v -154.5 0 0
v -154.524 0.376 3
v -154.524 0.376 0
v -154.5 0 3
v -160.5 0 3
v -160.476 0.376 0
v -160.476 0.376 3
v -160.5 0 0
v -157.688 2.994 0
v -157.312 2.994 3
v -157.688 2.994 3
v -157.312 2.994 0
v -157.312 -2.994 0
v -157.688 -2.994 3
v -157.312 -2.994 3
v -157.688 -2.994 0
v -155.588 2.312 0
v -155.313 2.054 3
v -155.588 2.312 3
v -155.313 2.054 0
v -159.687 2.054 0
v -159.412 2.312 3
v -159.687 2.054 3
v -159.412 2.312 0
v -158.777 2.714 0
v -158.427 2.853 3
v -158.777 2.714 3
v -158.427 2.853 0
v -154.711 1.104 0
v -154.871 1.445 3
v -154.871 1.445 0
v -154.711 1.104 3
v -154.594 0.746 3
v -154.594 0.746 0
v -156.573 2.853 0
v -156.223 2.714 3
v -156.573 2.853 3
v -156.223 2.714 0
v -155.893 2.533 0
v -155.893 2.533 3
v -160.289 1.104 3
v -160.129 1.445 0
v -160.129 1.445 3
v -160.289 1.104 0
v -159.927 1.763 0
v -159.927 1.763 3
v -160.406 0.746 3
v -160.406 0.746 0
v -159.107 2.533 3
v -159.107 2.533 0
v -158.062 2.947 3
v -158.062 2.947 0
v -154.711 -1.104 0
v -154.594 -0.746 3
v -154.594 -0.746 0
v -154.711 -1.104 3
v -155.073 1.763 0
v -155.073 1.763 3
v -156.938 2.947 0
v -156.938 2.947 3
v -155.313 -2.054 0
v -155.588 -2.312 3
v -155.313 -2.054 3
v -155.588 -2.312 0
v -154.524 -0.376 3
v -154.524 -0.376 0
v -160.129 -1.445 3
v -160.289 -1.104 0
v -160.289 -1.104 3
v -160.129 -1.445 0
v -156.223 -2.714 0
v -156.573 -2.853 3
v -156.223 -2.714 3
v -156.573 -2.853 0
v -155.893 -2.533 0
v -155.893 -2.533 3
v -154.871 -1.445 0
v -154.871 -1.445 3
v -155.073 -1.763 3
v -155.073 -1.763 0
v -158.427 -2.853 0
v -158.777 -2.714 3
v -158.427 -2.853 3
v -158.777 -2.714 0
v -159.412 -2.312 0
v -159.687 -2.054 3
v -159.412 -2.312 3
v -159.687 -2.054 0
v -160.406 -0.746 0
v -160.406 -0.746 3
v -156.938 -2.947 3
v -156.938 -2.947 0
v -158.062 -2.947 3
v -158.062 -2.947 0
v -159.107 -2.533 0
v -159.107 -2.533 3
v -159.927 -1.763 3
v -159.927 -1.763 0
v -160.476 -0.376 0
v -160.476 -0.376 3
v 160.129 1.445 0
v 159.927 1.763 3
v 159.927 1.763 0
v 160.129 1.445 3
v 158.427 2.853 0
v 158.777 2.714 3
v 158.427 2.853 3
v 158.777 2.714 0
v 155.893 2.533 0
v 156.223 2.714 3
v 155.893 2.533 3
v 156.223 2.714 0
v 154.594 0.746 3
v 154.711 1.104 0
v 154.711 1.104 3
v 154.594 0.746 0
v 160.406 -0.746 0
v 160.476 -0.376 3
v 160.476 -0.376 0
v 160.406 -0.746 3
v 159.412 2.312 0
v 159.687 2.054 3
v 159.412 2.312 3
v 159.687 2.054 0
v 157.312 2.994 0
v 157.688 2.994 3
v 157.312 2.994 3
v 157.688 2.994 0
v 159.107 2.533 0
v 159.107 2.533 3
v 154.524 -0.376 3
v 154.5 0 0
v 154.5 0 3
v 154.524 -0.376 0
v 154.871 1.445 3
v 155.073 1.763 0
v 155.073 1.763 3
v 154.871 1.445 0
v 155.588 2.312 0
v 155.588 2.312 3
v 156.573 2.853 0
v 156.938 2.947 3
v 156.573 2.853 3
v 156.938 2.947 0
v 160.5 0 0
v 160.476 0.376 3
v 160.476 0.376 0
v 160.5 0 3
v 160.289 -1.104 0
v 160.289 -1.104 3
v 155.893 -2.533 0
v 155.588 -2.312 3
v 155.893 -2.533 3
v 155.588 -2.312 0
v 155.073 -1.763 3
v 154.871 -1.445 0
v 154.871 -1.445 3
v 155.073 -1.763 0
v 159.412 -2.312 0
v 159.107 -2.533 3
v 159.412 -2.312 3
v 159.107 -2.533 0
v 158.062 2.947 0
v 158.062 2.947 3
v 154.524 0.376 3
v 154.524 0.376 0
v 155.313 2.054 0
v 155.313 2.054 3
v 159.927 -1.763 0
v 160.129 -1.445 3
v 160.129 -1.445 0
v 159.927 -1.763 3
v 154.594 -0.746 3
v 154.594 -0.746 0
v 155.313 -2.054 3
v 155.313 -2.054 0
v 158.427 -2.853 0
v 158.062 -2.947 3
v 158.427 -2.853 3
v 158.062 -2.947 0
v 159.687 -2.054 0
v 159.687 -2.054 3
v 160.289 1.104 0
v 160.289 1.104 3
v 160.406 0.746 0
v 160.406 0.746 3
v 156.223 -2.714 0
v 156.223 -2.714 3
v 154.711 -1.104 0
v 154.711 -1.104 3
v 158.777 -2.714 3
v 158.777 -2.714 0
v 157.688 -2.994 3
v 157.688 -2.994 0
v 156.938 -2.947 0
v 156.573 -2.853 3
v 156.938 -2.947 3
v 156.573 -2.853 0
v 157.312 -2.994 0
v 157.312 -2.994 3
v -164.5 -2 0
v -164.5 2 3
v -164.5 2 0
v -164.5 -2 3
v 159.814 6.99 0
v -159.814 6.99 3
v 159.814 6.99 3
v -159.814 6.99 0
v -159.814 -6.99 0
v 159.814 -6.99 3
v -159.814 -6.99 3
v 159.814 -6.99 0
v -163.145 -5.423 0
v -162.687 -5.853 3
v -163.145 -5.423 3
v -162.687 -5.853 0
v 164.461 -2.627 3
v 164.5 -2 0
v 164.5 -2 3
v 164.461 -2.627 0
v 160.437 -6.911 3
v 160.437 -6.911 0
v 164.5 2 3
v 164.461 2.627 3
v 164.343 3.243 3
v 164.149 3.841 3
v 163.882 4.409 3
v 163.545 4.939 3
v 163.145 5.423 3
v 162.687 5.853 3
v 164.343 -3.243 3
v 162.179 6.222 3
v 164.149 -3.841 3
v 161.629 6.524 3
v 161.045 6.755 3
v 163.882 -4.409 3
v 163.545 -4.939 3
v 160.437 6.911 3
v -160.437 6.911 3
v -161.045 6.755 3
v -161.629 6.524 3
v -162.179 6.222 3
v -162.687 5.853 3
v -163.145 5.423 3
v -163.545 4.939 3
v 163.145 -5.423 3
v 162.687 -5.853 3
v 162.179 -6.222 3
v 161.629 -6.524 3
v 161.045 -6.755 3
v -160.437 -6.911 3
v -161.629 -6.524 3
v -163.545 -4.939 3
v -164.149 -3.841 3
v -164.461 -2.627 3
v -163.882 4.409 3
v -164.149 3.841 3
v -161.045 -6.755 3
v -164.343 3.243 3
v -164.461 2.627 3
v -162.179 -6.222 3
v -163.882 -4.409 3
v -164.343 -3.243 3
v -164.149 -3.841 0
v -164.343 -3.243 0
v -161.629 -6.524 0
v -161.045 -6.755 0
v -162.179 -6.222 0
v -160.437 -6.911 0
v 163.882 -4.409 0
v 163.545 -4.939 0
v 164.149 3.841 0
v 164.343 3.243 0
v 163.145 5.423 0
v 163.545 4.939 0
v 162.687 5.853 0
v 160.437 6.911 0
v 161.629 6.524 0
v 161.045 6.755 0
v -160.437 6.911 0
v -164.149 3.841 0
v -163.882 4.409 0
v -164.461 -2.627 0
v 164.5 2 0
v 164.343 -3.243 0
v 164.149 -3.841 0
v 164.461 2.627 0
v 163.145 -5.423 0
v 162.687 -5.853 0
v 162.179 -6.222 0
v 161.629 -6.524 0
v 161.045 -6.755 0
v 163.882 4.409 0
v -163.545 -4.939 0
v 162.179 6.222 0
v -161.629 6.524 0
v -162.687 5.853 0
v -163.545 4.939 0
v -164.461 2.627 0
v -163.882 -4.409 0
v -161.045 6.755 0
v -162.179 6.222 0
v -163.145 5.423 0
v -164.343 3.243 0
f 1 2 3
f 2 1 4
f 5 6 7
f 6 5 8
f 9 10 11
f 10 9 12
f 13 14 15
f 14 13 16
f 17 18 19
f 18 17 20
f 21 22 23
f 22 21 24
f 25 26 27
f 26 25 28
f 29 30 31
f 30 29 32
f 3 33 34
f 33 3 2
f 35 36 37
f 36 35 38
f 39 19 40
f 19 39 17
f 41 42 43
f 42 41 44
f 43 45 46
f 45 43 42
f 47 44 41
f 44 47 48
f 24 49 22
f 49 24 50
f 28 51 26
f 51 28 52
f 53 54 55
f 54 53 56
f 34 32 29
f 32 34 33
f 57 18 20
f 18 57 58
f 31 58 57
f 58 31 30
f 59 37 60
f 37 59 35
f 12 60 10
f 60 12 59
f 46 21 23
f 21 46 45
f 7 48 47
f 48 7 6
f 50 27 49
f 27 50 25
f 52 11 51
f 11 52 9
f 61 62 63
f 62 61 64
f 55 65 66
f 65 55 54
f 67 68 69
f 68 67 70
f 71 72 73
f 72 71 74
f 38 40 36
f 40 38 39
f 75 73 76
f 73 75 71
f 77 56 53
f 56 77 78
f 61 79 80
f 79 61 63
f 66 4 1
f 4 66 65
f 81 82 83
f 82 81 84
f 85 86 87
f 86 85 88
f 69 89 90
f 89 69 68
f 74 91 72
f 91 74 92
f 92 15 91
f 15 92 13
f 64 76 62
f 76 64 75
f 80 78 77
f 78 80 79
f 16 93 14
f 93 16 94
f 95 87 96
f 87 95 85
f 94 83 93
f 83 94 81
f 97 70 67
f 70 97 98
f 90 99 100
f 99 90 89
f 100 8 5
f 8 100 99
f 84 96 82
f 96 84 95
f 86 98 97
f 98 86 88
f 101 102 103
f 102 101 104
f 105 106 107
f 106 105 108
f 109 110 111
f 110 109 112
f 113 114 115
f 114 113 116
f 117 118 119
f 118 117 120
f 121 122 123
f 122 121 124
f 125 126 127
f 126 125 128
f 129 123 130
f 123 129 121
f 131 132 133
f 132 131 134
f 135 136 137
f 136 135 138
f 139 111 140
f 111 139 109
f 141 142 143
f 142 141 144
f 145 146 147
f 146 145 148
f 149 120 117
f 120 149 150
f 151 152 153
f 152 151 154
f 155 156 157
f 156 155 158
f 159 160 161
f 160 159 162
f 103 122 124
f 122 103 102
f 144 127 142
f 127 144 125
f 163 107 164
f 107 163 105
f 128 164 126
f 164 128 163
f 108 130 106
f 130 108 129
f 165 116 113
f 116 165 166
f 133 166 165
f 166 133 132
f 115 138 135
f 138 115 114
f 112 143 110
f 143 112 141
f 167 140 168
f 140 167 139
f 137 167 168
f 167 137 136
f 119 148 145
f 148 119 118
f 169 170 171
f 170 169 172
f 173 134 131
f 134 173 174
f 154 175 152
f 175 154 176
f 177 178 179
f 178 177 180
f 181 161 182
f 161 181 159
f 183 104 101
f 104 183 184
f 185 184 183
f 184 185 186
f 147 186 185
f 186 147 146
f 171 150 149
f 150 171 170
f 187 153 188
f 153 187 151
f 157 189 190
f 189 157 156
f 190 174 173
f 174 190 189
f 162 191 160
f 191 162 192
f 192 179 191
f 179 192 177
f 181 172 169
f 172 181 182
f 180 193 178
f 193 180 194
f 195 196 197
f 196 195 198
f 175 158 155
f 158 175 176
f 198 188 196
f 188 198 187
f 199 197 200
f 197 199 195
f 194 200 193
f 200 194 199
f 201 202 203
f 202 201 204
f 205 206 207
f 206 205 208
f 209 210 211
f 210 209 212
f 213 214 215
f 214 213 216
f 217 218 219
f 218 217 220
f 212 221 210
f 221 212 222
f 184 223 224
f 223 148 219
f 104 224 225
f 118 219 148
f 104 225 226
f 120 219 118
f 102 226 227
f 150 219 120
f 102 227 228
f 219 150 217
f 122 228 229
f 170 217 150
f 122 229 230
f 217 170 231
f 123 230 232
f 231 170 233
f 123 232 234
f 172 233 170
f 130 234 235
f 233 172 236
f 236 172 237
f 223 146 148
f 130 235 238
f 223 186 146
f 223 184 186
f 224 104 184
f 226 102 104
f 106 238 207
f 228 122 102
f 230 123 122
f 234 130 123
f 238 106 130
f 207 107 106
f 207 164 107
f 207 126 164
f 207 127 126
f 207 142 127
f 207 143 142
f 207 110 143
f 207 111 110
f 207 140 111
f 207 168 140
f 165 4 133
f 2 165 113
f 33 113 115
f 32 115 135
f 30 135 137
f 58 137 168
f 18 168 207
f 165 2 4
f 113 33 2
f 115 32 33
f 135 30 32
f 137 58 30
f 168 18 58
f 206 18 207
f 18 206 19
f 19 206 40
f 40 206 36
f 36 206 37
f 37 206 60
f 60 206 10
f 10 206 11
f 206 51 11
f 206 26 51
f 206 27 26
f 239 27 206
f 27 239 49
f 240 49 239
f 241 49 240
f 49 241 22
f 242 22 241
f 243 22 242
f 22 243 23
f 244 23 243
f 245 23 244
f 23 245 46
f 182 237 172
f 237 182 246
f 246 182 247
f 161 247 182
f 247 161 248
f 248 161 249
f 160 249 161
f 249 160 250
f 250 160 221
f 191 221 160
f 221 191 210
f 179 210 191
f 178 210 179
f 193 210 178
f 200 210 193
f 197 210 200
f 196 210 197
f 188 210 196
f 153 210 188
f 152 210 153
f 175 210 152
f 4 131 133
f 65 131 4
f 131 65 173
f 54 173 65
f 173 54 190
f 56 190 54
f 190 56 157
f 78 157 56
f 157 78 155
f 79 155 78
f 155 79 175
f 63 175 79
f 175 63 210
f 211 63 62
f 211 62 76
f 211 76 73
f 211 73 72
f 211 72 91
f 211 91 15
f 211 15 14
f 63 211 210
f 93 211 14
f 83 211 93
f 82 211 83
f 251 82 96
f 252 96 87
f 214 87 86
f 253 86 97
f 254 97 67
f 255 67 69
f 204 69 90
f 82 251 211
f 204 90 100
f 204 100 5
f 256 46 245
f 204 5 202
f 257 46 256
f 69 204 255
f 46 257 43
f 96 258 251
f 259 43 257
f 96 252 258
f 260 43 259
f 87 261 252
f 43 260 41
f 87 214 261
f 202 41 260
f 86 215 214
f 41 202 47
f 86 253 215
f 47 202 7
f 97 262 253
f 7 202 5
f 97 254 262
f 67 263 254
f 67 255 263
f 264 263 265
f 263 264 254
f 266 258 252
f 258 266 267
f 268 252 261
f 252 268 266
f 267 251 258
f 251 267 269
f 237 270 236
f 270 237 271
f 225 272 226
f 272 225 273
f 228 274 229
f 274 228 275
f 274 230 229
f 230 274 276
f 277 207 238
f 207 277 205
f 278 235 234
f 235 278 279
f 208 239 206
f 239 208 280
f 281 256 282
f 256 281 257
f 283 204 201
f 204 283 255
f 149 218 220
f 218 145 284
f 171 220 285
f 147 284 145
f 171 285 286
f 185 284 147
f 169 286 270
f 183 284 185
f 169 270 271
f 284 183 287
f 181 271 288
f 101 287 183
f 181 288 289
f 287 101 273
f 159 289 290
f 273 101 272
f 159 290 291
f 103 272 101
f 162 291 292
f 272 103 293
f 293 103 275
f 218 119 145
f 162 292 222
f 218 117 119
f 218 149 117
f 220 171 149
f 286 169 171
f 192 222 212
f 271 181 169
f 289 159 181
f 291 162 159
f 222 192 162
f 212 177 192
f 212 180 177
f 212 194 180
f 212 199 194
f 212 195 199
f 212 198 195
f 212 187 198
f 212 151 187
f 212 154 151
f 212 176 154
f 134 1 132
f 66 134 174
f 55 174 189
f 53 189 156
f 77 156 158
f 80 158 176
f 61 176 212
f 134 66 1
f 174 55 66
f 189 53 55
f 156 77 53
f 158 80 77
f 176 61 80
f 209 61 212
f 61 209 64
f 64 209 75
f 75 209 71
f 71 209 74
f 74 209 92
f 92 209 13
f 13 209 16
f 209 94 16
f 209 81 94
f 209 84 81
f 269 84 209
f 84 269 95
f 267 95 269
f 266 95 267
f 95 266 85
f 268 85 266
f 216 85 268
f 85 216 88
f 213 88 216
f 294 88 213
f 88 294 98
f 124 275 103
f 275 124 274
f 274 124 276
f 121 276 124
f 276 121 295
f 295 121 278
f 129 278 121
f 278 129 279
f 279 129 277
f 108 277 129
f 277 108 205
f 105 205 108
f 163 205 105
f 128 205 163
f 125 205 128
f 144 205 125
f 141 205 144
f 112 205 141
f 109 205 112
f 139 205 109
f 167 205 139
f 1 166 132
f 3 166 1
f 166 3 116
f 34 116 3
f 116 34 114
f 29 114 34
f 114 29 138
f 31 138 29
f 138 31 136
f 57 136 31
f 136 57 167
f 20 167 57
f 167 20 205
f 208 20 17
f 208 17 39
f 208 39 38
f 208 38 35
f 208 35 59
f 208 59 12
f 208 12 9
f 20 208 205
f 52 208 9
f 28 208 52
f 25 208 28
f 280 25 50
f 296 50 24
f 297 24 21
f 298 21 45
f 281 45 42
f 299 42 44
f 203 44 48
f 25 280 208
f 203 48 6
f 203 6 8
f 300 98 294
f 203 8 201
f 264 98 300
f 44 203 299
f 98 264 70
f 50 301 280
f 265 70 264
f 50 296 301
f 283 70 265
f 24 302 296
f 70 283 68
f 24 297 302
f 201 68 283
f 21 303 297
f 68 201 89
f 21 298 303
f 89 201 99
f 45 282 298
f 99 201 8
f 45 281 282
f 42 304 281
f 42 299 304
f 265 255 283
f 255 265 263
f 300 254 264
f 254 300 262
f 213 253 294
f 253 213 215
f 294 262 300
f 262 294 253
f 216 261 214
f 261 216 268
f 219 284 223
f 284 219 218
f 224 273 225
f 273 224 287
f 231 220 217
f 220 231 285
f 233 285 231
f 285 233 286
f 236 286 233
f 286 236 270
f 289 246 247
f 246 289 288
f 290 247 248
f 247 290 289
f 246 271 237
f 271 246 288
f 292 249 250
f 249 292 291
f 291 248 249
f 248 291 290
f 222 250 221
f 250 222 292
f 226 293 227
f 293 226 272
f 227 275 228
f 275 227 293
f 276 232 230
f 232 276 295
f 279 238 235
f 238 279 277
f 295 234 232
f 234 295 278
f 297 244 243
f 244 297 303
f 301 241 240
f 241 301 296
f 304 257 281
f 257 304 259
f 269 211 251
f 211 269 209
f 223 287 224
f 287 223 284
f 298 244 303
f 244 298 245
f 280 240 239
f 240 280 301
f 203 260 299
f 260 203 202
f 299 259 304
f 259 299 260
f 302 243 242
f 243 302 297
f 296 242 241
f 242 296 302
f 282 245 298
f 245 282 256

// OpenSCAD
$fn = 50;


difference() {
	union() {
		hull() {
			translate(v = [-159.5000000000, 2.0000000000, 0]) {
				cylinder(h = 3, r = 5);
			}
			translate(v = [159.5000000000, 2.0000000000, 0]) {
				cylinder(h = 3, r = 5);
			}
			translate(v = [-159.5000000000, -2.0000000000, 0]) {
				cylinder(h = 3, r = 5);
			}
			translate(v = [159.5000000000, -2.0000000000, 0]) {
				cylinder(h = 3, r = 5);
			}
		}
	}
	union() {
		translate(v = [-157.5000000000, 0.0000000000, -100.0000000000]) {
			cylinder(h = 200, r = 3.0000000000);
		}
		translate(v = [-157.5000000000, 0.0000000000, -100.0000000000]) {
			cylinder(h = 200, r = 3.0000000000);
		}
		translate(v = [157.5000000000, 0.0000000000, -100.0000000000]) {
			cylinder(h = 200, r = 3.0000000000);
		}
		translate(v = [157.5000000000, 0.0000000000, -100.0000000000]) {
			cylinder(h = 200, r = 3.0000000000);
		}
	}
}
